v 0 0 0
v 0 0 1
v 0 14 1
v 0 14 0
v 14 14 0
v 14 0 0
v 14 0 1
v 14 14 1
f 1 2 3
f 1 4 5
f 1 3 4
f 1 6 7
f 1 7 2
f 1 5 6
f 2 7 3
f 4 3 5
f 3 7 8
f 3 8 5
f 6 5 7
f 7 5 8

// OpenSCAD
/* Warning, this is a very basic generator with a lot of approximation 
input data : [TQFP, XEB, 14x14x1mm, 100, , A, C04-21559A]
generated by com.zoubworld.electronics.cad.model3d.Basic
Date : Sun Feb 15 10:50:49 CET 2026
*/

//body
color("black")
translate([0,0,0])
cube([14.0,14.0,1.0], center=false);
